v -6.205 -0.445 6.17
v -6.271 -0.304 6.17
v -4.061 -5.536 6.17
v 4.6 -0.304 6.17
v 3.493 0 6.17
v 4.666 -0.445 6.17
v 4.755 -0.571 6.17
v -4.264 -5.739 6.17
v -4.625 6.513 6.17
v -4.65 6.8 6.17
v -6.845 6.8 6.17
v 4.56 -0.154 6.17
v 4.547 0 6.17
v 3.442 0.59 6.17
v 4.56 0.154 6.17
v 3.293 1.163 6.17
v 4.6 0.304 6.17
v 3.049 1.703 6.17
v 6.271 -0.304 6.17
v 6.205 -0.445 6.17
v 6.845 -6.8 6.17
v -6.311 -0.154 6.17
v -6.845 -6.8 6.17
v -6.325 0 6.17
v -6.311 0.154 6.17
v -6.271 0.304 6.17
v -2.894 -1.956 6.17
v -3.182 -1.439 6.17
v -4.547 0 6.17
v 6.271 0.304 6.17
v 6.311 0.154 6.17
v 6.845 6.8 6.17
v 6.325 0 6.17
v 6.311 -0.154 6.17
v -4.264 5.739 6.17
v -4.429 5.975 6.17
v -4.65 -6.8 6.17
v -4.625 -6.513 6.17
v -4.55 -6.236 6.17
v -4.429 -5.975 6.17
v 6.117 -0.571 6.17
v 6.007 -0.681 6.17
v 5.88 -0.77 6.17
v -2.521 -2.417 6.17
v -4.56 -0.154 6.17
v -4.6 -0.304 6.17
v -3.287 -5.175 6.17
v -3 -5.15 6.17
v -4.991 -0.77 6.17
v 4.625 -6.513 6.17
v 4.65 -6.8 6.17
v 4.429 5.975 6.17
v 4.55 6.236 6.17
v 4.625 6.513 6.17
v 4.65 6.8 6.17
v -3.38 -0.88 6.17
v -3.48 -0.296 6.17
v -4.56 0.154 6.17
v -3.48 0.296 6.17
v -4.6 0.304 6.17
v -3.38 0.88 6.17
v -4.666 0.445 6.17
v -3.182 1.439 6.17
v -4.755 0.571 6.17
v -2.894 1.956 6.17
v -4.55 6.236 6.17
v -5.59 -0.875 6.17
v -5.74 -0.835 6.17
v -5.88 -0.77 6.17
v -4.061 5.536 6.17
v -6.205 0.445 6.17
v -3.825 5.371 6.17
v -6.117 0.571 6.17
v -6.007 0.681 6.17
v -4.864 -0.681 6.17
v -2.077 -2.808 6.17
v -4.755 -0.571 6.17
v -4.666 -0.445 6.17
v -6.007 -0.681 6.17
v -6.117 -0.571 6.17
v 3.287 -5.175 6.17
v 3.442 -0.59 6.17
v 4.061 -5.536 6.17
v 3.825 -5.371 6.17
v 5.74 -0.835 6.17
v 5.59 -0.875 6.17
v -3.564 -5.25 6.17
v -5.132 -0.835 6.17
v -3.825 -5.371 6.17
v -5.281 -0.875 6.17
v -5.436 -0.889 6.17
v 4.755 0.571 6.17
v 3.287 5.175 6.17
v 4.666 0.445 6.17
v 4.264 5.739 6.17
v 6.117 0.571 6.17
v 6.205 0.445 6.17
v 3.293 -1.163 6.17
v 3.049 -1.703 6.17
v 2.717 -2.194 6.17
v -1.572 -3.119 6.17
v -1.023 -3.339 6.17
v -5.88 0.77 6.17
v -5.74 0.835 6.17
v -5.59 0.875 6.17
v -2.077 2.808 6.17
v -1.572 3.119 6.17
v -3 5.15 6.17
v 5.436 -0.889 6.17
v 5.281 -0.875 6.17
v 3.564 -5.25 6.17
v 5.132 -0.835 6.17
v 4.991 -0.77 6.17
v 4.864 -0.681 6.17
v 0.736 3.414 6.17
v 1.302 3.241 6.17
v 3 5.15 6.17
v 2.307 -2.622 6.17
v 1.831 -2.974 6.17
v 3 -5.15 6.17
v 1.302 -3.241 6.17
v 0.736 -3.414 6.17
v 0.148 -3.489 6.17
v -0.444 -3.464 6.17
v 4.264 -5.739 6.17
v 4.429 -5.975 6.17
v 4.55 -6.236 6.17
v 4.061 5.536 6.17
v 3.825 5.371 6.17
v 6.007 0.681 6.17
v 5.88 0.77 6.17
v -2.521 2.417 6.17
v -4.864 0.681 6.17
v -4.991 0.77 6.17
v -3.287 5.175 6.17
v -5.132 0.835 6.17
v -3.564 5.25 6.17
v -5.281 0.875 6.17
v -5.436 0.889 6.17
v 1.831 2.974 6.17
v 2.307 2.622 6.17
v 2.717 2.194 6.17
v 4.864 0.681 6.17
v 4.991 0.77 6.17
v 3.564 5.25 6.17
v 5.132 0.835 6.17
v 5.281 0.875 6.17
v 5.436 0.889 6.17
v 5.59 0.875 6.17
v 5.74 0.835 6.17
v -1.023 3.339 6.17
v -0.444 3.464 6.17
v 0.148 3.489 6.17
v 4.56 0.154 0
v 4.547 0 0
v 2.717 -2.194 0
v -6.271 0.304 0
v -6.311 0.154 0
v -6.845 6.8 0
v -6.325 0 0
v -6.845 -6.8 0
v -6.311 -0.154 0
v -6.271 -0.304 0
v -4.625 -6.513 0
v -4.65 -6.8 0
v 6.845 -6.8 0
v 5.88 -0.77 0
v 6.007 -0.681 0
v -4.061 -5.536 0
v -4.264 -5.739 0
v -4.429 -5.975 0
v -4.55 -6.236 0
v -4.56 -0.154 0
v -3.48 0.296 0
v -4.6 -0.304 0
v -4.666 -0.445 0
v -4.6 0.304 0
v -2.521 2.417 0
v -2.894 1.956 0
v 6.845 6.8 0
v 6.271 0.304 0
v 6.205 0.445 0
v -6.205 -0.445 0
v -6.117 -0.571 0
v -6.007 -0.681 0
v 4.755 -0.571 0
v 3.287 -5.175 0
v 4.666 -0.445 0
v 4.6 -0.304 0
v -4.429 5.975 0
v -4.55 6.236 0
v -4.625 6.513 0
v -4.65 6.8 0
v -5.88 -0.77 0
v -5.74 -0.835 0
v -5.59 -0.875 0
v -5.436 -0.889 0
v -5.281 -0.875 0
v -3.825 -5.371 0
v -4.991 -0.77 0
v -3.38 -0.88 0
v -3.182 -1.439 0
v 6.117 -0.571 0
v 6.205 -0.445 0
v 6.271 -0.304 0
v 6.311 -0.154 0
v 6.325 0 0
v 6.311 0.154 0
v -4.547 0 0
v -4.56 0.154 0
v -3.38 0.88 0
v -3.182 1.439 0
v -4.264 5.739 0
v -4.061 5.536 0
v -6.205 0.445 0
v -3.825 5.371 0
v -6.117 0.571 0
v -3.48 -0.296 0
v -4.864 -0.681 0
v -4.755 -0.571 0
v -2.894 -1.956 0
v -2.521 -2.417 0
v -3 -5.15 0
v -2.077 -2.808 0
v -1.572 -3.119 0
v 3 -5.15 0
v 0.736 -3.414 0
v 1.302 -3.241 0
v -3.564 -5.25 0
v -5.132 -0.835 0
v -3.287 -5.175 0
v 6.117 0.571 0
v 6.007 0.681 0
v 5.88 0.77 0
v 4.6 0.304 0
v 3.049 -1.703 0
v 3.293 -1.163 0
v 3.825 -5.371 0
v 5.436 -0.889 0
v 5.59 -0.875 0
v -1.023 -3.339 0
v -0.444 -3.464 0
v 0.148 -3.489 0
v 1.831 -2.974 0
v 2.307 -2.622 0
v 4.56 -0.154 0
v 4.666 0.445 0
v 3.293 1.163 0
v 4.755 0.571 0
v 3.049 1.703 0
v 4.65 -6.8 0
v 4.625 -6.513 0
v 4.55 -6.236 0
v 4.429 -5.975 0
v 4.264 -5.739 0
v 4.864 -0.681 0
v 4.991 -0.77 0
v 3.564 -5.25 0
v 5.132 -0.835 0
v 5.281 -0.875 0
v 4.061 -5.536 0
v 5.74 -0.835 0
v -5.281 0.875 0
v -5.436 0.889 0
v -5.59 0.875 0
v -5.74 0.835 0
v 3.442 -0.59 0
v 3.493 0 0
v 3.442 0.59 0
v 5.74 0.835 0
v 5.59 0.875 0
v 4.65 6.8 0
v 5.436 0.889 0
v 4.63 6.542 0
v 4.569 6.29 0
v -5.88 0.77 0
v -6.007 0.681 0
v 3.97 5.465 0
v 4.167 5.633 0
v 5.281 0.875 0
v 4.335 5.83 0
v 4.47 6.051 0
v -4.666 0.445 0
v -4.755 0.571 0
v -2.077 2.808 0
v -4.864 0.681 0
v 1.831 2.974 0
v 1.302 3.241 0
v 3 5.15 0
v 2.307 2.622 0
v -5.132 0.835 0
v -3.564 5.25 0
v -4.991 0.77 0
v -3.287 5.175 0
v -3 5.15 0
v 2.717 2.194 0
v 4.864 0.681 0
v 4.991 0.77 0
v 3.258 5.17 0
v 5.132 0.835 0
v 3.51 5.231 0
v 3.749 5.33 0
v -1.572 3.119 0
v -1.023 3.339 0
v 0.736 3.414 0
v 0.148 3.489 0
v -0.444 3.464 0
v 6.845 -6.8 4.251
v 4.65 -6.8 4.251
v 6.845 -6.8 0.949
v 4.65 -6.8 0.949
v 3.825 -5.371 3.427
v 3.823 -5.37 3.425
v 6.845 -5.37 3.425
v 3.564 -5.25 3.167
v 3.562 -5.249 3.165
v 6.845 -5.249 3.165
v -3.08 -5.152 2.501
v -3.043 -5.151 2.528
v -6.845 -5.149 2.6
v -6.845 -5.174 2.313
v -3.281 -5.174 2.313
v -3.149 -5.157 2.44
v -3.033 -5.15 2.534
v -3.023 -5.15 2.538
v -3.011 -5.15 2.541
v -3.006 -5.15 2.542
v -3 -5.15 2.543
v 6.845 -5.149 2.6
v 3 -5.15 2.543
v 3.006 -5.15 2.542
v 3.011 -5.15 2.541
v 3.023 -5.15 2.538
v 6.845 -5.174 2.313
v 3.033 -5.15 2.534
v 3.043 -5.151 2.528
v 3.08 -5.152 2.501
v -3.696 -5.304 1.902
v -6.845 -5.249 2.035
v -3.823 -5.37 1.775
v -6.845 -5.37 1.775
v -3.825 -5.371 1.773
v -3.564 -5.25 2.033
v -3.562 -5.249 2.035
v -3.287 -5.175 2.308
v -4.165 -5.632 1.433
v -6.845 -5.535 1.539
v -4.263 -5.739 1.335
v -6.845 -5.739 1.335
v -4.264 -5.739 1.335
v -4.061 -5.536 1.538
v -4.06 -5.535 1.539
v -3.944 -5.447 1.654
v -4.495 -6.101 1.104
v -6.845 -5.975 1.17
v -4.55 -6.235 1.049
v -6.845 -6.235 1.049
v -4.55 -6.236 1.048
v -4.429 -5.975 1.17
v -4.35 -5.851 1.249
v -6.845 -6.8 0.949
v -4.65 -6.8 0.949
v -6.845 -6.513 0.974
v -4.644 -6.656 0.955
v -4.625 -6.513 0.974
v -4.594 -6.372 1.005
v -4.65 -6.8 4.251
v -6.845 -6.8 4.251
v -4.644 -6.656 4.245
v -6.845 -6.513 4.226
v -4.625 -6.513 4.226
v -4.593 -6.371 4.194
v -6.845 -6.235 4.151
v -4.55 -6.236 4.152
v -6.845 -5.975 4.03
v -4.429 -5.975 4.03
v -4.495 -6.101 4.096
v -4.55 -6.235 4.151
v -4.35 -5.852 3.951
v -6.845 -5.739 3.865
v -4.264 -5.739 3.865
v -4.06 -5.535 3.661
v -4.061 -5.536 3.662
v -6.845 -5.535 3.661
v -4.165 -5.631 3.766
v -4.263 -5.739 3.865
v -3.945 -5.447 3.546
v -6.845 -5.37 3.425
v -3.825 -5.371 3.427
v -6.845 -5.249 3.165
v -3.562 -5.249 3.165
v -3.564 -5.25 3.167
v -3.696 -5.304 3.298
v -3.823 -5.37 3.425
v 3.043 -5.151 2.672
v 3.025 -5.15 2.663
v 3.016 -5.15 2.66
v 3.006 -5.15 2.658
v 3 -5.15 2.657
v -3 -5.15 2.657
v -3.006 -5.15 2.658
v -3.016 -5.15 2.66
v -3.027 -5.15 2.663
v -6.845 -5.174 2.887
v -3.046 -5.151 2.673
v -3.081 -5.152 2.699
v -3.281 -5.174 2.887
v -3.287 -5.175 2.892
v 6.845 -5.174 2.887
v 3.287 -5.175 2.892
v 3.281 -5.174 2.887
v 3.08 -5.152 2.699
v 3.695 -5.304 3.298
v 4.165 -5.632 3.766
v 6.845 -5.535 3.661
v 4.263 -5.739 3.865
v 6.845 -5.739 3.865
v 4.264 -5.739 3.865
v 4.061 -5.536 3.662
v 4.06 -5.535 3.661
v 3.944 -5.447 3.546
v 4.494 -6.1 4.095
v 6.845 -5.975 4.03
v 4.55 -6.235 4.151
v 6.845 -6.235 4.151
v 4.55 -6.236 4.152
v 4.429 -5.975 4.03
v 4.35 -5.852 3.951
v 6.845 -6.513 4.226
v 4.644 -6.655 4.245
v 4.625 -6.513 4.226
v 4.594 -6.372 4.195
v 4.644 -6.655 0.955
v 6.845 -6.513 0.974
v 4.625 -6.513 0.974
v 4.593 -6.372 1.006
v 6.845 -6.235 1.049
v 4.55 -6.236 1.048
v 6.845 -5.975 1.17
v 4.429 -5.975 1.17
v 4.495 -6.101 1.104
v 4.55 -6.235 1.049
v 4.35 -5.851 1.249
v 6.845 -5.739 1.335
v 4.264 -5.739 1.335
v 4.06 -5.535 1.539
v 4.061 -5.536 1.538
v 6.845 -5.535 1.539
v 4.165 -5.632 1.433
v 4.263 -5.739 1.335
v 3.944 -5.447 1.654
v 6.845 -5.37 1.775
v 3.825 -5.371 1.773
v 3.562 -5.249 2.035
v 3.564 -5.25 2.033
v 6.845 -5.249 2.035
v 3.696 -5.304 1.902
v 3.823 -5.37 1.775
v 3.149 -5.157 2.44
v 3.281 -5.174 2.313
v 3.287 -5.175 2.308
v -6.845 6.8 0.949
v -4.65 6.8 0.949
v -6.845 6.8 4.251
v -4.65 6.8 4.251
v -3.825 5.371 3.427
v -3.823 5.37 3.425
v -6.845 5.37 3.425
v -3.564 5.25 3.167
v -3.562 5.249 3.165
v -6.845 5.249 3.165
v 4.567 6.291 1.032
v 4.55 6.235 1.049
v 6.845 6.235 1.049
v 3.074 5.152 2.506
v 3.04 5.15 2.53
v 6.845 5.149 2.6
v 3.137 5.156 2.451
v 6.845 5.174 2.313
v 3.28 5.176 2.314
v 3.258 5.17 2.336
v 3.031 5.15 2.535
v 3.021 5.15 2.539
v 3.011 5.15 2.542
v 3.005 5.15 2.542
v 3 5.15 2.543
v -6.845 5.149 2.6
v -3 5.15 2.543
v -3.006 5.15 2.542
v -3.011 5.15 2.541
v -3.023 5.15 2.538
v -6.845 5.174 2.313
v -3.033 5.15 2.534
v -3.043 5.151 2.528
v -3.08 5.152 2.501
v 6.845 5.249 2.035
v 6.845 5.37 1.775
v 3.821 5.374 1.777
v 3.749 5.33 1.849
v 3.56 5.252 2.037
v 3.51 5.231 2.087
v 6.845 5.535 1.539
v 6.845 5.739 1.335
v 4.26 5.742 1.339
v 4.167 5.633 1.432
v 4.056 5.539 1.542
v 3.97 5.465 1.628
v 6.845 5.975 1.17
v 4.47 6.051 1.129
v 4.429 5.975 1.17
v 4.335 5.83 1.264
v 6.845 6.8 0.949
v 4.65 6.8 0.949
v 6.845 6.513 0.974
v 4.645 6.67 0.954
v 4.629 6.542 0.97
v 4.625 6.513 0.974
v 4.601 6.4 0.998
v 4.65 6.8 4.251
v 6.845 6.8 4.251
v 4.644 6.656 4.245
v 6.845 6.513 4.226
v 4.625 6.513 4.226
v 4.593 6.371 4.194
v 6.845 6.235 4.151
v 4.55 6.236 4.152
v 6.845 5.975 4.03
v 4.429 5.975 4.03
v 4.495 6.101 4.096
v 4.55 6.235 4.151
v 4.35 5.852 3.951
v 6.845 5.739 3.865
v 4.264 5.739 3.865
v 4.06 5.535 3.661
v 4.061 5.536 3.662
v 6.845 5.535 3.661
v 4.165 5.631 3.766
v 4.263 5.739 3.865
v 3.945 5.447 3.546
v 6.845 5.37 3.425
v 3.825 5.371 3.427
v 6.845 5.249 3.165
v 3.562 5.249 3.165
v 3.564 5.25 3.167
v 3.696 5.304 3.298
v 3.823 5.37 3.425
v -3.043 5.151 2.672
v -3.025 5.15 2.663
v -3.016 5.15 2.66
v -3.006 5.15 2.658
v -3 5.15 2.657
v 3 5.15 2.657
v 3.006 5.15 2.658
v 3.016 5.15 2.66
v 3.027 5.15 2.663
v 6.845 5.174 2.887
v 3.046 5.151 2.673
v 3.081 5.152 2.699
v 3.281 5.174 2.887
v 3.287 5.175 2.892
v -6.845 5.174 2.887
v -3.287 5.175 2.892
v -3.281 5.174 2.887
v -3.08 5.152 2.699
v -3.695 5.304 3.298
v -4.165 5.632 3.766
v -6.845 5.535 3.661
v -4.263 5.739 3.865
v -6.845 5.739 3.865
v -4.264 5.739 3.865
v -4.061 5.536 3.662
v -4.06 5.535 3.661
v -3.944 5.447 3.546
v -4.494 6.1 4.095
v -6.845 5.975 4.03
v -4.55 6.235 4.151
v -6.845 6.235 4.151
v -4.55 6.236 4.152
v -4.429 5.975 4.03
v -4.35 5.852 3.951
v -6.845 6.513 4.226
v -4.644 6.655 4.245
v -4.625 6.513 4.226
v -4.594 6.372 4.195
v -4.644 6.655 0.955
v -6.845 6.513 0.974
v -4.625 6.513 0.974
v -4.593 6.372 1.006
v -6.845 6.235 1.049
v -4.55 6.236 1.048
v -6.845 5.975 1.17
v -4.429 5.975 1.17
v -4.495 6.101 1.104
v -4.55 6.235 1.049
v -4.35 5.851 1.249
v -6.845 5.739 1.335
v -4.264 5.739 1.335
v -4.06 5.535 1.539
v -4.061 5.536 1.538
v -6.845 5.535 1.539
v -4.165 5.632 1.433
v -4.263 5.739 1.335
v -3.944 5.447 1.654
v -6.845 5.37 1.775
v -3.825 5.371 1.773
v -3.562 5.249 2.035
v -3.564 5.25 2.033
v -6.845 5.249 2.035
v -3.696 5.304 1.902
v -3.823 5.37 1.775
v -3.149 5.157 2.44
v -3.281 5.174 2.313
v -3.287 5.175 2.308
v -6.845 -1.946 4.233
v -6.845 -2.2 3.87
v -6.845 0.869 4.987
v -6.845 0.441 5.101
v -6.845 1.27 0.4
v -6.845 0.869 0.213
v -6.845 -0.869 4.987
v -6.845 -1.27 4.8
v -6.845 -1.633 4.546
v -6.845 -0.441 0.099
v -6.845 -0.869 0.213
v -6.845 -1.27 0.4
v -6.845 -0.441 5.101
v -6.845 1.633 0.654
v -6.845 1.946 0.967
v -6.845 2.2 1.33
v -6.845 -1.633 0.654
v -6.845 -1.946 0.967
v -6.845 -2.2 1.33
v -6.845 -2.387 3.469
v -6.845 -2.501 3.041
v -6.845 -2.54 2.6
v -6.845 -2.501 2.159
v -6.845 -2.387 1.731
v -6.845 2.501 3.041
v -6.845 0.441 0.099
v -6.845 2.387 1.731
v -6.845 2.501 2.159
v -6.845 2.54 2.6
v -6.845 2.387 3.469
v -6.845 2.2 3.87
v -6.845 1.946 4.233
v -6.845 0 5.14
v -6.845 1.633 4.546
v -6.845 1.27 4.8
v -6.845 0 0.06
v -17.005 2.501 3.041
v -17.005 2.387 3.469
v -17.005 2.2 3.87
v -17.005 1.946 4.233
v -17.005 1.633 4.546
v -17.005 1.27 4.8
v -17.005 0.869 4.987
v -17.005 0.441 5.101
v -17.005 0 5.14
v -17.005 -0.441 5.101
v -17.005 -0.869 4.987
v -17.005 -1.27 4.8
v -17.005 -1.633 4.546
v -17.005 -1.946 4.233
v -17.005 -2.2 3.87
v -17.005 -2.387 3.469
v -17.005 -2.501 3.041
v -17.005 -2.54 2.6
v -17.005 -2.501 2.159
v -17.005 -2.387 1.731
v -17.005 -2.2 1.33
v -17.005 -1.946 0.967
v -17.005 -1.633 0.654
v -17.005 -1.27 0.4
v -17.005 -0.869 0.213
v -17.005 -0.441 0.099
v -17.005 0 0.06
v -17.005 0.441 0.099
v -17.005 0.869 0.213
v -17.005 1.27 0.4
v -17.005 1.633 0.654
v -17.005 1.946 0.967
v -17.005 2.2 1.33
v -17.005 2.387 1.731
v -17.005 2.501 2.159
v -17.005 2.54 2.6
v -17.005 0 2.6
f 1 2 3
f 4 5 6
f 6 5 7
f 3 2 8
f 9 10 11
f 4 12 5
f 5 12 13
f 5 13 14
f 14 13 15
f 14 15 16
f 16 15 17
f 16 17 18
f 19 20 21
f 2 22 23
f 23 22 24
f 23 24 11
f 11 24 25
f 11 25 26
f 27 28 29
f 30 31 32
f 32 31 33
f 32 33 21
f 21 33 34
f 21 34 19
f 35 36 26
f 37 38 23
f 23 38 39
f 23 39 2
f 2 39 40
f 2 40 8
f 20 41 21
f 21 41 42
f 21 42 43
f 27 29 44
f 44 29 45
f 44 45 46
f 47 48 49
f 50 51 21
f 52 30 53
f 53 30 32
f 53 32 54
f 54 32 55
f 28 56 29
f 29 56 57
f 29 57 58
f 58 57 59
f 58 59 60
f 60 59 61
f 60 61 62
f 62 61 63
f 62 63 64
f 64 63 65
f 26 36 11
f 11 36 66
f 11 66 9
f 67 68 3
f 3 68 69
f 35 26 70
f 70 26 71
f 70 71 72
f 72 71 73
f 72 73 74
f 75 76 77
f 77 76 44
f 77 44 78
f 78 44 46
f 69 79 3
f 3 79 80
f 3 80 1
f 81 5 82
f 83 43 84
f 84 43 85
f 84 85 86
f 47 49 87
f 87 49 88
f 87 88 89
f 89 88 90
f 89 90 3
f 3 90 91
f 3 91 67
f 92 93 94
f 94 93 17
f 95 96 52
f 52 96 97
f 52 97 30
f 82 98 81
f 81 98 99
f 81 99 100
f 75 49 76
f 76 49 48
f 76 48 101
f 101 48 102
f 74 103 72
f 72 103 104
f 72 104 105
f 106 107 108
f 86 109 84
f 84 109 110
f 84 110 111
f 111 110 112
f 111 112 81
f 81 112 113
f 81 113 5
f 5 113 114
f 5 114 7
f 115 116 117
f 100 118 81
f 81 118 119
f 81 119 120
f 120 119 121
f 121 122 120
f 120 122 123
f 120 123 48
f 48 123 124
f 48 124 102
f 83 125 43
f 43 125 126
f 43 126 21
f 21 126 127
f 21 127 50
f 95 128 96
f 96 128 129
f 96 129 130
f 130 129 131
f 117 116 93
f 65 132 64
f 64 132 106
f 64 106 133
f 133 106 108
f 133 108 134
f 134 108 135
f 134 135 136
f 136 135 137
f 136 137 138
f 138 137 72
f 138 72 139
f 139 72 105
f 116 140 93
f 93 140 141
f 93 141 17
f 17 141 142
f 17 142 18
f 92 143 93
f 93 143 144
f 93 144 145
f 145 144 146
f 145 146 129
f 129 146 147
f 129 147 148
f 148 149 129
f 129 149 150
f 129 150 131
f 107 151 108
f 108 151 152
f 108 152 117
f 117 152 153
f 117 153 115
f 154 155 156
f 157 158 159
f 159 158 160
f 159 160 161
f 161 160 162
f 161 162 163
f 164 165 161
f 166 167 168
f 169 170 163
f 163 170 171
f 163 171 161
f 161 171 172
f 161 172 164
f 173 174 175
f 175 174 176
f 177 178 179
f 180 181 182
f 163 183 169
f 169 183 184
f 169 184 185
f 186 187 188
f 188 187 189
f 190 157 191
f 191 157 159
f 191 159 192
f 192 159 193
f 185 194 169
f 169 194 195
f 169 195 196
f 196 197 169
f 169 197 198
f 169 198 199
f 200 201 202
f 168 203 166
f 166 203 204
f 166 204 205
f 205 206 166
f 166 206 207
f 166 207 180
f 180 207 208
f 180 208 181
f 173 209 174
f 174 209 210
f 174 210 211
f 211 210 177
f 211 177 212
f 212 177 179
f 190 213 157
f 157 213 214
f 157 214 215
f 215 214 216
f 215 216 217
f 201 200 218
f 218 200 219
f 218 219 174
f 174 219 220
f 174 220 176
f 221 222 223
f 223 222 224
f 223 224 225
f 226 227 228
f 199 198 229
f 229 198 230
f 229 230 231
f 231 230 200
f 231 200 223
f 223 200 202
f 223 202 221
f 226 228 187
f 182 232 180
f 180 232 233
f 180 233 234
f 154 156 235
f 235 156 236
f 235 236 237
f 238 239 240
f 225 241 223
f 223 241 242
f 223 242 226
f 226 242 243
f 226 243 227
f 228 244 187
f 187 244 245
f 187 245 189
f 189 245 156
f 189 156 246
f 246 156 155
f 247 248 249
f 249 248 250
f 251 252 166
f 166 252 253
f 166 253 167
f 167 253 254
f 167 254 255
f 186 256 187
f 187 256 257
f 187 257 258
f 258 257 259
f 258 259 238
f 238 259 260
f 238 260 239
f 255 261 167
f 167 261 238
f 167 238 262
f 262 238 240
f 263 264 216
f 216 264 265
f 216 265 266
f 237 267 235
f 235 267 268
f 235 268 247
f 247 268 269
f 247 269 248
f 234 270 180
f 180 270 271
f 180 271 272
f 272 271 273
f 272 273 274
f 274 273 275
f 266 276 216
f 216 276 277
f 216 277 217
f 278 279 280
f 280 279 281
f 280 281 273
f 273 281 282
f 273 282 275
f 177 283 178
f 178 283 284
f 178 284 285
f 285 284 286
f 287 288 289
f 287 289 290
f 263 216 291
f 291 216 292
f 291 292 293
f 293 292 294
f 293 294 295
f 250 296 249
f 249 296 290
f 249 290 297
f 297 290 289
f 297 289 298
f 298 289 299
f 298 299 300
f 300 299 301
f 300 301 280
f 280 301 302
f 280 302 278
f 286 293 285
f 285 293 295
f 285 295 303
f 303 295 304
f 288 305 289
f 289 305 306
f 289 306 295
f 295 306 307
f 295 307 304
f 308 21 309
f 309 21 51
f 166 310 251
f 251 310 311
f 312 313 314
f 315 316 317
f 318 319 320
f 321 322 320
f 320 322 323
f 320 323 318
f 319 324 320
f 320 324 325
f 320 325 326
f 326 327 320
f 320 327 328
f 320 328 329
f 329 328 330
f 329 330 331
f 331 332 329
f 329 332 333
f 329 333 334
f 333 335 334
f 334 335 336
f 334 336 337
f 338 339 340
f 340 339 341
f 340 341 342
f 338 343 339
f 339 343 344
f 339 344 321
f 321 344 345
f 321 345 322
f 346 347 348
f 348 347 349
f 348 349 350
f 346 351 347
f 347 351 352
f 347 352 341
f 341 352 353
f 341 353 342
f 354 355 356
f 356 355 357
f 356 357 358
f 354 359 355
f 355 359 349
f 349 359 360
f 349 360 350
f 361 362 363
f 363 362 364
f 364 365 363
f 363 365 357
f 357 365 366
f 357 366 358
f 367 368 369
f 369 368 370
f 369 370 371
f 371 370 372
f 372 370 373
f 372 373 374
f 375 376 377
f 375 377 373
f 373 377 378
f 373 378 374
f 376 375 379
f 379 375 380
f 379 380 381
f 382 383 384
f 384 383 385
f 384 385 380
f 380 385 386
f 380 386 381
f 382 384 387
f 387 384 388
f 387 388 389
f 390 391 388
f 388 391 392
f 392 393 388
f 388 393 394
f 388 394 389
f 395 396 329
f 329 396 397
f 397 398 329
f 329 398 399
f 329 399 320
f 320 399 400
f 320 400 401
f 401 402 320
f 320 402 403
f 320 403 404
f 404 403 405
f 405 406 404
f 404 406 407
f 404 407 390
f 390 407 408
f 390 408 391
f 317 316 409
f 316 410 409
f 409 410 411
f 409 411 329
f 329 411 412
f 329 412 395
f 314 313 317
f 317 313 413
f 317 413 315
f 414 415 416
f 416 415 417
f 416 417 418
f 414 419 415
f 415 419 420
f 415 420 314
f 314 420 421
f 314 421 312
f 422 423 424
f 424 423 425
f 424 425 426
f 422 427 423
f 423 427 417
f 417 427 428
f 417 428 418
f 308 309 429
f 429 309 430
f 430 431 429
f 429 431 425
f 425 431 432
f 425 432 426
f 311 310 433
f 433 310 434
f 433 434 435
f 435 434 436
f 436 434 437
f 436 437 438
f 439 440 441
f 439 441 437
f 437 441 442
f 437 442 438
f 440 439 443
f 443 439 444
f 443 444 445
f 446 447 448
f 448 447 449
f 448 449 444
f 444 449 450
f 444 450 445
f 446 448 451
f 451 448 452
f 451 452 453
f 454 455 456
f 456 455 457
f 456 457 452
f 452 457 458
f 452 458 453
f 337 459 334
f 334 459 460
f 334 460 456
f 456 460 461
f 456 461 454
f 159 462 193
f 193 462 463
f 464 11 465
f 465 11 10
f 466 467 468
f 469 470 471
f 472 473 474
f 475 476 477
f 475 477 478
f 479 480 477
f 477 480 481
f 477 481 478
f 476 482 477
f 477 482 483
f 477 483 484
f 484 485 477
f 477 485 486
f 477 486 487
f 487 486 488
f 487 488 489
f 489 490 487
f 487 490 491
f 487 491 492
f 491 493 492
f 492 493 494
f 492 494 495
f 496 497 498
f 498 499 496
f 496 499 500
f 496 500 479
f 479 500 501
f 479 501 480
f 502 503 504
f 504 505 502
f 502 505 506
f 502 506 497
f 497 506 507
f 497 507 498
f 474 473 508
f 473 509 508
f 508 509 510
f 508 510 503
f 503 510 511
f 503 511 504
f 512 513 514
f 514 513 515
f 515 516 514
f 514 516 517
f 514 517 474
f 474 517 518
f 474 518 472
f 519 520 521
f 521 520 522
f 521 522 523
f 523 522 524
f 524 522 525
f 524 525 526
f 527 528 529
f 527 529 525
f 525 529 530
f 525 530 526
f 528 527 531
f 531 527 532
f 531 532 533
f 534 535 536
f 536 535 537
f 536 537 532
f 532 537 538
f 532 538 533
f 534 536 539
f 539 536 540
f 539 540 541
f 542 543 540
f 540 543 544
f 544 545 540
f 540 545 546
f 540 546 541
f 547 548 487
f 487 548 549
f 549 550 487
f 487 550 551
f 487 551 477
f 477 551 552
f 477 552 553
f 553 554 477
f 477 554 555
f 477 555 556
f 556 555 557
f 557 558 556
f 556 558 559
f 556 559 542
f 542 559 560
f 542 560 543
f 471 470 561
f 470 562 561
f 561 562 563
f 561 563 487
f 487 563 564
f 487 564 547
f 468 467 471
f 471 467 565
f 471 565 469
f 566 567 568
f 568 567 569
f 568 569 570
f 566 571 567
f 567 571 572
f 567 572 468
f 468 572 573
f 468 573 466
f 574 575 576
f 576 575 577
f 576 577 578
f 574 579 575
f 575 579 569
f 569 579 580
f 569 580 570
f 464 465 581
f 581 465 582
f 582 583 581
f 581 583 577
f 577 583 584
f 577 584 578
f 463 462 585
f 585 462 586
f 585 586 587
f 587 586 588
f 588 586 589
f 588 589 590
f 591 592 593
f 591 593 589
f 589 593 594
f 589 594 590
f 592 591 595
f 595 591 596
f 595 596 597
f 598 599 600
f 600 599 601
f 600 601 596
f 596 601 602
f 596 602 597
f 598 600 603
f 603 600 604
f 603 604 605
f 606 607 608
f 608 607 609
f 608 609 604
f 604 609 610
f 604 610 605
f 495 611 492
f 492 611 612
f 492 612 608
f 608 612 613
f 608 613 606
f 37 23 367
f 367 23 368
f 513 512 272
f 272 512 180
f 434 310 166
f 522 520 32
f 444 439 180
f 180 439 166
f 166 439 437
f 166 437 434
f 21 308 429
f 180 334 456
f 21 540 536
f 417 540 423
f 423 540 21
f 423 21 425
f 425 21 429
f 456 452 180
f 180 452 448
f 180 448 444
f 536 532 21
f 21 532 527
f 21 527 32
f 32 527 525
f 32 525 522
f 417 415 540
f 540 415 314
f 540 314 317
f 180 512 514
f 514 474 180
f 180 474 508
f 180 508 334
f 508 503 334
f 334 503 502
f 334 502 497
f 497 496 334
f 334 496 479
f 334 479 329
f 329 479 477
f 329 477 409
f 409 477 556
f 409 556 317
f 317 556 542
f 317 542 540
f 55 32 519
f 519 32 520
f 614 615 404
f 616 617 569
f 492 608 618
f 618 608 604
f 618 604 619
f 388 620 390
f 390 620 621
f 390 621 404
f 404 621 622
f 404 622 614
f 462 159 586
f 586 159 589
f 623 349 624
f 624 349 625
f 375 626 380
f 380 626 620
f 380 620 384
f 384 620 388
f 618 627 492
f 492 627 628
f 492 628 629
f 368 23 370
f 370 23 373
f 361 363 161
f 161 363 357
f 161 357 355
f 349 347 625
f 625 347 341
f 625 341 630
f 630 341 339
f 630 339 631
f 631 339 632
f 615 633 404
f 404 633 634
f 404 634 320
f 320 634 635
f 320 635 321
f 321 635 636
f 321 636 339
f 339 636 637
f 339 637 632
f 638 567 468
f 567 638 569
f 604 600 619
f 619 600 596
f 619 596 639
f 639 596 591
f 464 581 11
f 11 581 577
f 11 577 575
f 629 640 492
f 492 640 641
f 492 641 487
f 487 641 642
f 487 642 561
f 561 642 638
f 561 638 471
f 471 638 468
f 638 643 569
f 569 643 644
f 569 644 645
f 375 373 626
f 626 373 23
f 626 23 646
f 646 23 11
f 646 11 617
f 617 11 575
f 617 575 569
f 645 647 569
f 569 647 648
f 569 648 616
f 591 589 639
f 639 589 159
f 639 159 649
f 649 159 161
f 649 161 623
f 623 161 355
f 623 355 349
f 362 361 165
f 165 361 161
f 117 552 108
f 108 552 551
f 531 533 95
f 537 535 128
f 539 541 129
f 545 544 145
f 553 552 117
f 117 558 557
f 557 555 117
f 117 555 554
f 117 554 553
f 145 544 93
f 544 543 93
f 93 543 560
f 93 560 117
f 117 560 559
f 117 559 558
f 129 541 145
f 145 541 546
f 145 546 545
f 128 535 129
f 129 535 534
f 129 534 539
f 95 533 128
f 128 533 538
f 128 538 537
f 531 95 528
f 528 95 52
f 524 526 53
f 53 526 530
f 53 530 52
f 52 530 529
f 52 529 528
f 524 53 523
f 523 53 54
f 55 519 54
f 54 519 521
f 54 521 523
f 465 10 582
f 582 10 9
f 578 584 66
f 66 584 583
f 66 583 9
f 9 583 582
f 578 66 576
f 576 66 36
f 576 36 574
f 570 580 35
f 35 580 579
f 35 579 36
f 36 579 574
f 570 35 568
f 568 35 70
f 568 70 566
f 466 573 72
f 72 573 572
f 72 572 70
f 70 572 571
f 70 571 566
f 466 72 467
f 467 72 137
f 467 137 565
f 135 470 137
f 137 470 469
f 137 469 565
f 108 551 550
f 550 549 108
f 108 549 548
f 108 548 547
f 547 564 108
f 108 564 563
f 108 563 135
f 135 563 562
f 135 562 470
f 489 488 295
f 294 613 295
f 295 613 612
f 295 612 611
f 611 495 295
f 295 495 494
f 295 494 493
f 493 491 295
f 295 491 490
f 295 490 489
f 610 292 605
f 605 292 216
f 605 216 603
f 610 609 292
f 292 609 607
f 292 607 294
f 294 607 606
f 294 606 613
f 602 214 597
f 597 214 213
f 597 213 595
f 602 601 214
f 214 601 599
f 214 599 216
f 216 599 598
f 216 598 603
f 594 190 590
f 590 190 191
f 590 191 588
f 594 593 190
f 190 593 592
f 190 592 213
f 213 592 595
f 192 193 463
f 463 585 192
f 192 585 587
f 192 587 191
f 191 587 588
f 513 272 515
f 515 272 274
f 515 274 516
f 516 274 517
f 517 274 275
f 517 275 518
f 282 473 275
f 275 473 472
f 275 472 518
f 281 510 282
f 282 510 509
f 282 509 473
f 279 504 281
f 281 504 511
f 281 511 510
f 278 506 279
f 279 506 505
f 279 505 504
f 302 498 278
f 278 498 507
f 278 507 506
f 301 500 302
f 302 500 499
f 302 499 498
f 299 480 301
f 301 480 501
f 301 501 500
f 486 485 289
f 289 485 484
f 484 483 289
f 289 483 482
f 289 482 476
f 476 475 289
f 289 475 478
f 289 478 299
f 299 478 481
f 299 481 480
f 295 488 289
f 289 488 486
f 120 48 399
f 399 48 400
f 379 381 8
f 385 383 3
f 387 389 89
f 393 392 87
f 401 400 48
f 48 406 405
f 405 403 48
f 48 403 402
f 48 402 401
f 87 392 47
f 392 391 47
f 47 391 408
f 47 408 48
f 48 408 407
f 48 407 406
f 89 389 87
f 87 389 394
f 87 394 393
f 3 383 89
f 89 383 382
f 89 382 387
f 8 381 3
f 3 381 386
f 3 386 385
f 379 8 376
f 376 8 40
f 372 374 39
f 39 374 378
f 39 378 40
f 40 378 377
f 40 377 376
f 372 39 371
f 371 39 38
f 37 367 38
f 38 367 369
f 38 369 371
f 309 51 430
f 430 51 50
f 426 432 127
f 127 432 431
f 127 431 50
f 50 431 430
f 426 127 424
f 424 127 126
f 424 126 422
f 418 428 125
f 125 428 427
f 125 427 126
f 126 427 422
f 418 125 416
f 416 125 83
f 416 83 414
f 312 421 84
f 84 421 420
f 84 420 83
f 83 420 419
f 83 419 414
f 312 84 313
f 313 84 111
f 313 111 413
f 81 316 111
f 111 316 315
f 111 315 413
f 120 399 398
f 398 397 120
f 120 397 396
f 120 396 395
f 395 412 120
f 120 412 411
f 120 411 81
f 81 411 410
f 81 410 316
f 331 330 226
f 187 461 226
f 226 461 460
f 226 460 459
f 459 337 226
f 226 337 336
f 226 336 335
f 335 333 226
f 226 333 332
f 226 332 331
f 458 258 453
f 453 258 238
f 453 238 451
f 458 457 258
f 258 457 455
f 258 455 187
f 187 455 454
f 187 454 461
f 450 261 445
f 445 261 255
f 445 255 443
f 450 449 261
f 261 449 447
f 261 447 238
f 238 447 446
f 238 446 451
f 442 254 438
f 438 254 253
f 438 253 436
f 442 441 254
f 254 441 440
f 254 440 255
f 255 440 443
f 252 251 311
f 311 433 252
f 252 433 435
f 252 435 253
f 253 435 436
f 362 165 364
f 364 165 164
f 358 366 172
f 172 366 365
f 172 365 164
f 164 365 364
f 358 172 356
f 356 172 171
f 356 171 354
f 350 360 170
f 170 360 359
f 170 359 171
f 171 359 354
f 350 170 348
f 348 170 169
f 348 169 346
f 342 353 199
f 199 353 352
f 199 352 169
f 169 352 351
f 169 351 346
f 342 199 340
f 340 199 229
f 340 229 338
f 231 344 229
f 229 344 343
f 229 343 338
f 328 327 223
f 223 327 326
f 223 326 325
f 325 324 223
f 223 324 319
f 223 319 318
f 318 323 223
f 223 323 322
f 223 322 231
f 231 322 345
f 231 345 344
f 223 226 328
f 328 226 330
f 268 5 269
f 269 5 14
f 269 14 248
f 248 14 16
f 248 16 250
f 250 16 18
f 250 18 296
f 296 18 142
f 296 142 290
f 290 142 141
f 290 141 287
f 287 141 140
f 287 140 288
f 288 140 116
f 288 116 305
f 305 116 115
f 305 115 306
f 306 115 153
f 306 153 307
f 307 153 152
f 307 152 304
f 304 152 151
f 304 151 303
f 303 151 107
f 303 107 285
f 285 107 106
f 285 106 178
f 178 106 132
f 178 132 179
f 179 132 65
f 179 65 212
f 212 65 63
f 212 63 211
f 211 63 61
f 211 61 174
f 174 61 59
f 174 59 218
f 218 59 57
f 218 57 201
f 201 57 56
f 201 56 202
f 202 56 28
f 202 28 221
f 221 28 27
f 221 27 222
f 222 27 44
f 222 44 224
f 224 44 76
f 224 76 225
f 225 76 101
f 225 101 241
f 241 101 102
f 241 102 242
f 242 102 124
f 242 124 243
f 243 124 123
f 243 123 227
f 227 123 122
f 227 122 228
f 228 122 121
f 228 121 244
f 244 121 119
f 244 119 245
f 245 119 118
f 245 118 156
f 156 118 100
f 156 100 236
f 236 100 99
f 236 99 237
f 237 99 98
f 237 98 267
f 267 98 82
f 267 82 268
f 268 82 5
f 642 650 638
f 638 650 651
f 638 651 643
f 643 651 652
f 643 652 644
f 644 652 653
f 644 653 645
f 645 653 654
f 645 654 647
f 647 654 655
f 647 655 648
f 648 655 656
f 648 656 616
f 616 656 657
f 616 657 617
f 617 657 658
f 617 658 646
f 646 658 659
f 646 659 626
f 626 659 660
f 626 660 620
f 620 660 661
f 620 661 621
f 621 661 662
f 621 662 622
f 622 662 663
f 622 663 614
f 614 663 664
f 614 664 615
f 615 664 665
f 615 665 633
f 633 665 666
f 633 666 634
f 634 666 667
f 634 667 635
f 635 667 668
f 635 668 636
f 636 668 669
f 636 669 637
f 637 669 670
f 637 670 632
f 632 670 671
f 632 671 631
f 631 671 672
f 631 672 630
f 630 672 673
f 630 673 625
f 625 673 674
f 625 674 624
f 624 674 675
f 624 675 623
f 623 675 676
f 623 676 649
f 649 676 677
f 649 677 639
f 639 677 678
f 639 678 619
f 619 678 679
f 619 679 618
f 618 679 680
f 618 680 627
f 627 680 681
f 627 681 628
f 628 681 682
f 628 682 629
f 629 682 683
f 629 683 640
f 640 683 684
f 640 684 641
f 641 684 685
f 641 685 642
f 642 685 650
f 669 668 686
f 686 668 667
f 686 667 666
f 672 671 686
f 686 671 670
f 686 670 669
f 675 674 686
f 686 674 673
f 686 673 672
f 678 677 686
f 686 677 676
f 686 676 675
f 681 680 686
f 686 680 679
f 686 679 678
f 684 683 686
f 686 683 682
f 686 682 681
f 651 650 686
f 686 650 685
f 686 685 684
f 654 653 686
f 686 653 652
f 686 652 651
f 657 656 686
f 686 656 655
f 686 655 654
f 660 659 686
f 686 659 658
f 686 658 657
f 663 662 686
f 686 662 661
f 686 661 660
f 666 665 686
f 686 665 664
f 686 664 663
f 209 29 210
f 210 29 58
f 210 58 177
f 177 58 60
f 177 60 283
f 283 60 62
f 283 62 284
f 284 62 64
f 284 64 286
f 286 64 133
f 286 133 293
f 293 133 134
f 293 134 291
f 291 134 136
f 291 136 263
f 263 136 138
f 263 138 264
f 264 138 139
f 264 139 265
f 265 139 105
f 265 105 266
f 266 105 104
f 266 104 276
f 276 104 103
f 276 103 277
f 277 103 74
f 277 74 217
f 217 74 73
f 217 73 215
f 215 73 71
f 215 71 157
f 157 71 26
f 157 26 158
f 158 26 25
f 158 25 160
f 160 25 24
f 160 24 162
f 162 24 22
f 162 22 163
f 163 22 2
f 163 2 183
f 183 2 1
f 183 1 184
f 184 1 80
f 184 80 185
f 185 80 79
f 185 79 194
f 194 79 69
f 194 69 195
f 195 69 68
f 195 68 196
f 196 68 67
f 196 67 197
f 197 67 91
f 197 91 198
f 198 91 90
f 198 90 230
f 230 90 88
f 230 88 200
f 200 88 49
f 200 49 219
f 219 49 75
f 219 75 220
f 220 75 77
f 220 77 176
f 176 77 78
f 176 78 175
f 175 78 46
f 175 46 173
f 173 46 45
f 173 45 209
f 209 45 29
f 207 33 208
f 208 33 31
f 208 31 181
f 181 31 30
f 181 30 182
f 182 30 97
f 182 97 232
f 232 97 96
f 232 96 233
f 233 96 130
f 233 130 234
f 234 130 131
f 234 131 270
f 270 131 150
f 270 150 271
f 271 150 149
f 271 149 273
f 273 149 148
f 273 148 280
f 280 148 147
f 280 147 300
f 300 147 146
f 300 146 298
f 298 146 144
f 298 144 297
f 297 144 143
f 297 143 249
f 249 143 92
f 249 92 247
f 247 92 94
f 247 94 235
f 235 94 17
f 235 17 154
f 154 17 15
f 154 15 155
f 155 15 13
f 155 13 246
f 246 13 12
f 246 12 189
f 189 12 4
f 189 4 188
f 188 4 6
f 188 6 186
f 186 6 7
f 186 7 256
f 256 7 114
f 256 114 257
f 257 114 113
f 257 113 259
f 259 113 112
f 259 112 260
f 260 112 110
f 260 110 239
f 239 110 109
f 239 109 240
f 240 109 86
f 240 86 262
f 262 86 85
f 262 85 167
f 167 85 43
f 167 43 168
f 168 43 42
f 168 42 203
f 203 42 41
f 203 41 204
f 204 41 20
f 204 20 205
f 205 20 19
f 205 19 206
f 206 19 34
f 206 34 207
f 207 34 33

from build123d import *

# Parameters (mm, degrees)
SKETCH1_W           = 13.6906
SKETCH1_H           = 13.6
BOSS_EXTRUDE1_DEPTH = 6.17
SKETCH2_R           = 1.651
CUT_EXTRUDE1_DEPTH  = 17.484581534
SKETCH3_W           = 6
SKETCH3_H           = 1.65
CUT_EXTRUDE2_DEPTH  = 12.452817649
SKETCH4_R           = 3.4925
CUT_EXTRUDE3_DEPTH  = 12.452817822
SKETCH5_R           = 2.54
BOSS_EXTRUDE2_DEPTH = 10.16
SKETCH6_R           = 0.889
CUT_EXTRUDE4_DEPTH  = 20.325866881


with BuildPart() as part:
    # Sketch1 → Boss-Extrude1 (new body)
    with BuildSketch(Plane.XY):
        Rectangle(SKETCH1_W, SKETCH1_H)
    extrude(amount=BOSS_EXTRUDE1_DEPTH)

    # Sketch2 → Cut-Extrude1 (cut, through all)
    with BuildSketch(Plane(origin=(6.8453, 0, 0), x_dir=(0, 0, -1), z_dir=(1, 0, 0))):
        with Locations((-2.6, 6.8)):
            Circle(SKETCH2_R)
        with Locations((-2.6, -6.8)):
            Circle(SKETCH2_R)
    extrude(amount=-CUT_EXTRUDE1_DEPTH, mode=Mode.SUBTRACT)

    # Sketch3 → Cut-Extrude2 (cut, through all)
    with BuildSketch(Plane.XY.offset(6.17)):
        with BuildLine():
            Line((-3, 5.15), (-3, 6.8))
            Line((-3, 6.8), (-4.65, 6.8))
            ThreePointArc((-4.65, 6.8), (-4.166726189, 5.633273811), (-3, 5.15))
        make_face()
        with Locations((0, 5.975)):
            Rectangle(SKETCH3_W, SKETCH3_H)
        with BuildLine():
            Line((4.65, 6.8), (3, 6.8))
            Line((3, 6.8), (3, 5.15))
            ThreePointArc((3, 5.15), (4.166726189, 5.633273811), (4.65, 6.8))
        make_face()
        with BuildLine():
            Line((3, -5.15), (3, -6.8))
            Line((3, -6.8), (4.65, -6.8))
            ThreePointArc((4.65, -6.8), (4.166726189, -5.633273811), (3, -5.15))
        make_face()
        with Locations((0, -5.975)):
            Rectangle(SKETCH3_W, SKETCH3_H)
        with BuildLine():
            Line((-4.65, -6.8), (-3, -6.8))
            Line((-3, -6.8), (-3, -5.15))
            ThreePointArc((-3, -5.15), (-4.166726189, -5.633273811), (-4.65, -6.8))
        make_face()
    extrude(amount=-CUT_EXTRUDE2_DEPTH, mode=Mode.SUBTRACT)

    # Sketch4 → Cut-Extrude3 (cut, through all)
    with BuildSketch(Plane.XY.offset(6.17)):
        Circle(SKETCH4_R)
    extrude(amount=-CUT_EXTRUDE3_DEPTH, mode=Mode.SUBTRACT)

    # Sketch5 → Boss-Extrude2 (add)
    with BuildSketch(Plane.ZY.offset(6.8453)):
        with Locations(Location((2.6, 0, 0), (0, 0, 90))):
            Circle(SKETCH5_R)
    extrude(amount=BOSS_EXTRUDE2_DEPTH)

    # Sketch6 → Cut-Extrude4 (cut, through all)
    with BuildSketch(Plane.XY.offset(6.17)):
        with Locations((-5.4356, 0)):
            Circle(SKETCH6_R)
        with Locations(Location((5.4356, 0, 0), (0, 0, 180))):
            Circle(SKETCH6_R)
    extrude(amount=-CUT_EXTRUDE4_DEPTH, mode=Mode.SUBTRACT)


solid = part.part
